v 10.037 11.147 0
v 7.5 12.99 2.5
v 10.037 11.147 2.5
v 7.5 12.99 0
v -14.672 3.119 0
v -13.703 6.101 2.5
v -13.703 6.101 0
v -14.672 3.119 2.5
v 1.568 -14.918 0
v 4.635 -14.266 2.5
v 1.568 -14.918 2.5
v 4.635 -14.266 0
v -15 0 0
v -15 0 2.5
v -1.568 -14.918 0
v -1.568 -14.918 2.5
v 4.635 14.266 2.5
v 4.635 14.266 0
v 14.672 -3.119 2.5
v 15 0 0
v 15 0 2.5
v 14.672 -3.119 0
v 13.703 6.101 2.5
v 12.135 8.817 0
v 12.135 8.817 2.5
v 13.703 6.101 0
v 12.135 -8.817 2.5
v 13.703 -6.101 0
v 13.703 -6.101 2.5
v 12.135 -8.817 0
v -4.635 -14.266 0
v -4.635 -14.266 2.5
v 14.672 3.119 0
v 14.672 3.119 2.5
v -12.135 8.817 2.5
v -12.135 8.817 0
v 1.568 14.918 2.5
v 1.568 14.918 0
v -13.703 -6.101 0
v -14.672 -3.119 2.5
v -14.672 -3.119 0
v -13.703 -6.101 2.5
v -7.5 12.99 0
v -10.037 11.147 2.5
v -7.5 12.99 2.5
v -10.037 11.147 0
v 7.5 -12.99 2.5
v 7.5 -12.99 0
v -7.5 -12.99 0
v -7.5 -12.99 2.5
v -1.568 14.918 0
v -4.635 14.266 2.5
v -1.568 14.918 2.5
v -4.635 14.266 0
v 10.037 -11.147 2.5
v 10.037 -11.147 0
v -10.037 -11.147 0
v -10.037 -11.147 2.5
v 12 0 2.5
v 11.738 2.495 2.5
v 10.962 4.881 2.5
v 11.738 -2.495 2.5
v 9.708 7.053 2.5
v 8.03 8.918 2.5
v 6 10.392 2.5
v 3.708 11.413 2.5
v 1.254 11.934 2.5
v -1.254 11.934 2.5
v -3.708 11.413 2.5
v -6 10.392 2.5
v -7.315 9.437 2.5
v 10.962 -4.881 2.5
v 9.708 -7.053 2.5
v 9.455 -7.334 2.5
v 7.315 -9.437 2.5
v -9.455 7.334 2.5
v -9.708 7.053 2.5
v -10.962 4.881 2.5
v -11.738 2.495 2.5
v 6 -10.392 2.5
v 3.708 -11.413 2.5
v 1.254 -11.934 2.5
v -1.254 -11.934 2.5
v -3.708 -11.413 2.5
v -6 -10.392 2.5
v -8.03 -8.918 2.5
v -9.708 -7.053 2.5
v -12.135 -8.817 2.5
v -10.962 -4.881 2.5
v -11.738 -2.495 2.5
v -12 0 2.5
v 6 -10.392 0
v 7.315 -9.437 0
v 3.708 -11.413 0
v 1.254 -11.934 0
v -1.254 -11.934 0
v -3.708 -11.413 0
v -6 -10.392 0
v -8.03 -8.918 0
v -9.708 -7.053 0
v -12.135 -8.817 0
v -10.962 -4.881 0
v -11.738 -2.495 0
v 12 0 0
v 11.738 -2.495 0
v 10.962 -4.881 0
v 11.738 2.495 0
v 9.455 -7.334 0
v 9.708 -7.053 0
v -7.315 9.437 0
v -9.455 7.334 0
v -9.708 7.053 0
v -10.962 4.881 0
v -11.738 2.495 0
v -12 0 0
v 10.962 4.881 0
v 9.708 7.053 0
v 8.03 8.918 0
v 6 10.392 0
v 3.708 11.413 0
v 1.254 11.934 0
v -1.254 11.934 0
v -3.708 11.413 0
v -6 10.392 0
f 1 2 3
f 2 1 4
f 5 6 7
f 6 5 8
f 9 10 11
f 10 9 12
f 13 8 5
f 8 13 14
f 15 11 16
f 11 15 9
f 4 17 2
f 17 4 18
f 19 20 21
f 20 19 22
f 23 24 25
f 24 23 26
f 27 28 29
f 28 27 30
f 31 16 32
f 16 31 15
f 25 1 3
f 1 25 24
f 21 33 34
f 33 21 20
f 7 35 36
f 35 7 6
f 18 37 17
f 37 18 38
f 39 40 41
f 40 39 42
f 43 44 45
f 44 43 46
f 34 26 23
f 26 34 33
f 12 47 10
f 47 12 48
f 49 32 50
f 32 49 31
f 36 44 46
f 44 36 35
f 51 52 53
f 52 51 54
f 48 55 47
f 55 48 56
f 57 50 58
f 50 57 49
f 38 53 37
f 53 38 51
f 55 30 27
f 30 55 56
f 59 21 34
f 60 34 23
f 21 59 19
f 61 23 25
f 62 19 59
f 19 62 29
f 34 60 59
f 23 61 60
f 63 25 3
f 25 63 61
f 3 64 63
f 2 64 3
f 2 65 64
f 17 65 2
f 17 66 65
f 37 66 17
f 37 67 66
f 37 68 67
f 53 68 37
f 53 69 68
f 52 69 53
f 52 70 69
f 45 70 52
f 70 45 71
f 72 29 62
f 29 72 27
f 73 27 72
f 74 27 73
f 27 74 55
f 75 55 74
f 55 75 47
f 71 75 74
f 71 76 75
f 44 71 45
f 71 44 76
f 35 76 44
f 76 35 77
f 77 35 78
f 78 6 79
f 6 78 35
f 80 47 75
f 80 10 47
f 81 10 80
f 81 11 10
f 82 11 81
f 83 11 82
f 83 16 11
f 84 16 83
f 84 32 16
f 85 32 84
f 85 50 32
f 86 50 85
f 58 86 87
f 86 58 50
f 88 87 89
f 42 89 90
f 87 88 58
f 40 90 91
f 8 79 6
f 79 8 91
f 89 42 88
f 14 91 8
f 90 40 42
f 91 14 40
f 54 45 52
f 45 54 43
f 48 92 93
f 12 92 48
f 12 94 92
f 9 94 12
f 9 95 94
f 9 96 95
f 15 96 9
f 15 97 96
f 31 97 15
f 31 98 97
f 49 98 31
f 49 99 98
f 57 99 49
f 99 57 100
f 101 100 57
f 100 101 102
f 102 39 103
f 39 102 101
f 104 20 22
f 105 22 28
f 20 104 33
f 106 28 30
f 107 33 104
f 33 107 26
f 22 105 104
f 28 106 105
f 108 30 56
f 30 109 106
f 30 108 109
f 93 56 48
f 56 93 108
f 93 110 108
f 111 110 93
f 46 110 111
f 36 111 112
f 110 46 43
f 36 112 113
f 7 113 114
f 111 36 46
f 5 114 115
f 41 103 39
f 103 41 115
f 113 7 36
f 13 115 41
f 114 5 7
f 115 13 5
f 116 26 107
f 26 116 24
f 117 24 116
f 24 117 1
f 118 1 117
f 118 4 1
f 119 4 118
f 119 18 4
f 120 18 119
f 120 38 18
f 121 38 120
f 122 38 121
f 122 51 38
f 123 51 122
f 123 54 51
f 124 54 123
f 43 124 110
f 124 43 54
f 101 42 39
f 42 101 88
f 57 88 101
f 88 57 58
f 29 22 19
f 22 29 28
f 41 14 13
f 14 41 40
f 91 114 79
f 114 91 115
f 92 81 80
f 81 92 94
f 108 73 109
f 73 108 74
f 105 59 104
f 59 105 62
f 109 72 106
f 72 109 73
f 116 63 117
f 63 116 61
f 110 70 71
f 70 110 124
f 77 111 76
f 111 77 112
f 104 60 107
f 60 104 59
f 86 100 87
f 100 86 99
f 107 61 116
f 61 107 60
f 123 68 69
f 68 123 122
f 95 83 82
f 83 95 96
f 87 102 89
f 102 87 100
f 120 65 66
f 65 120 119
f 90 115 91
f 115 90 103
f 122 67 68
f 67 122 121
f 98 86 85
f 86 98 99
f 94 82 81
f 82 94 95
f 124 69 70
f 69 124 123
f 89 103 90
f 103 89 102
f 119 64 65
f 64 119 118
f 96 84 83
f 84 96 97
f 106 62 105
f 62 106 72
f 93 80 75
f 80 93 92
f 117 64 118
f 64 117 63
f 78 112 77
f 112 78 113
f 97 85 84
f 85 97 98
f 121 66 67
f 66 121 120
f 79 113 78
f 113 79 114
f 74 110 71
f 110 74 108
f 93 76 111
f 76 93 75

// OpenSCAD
union() {
	difference() {
		cylinder(h = 2.5, r = 15.0);
		cylinder(h = 2.5, r = 12.0);
	}
	rotate(a = [0, 0, -45]) {
		translate(v = [-13.5, 0, 0]) {
			translate(v = [0, -1.5, 0]) {
				cube(size = [27.0, 3.0, 2.5]);
			}
		}
	}
}
